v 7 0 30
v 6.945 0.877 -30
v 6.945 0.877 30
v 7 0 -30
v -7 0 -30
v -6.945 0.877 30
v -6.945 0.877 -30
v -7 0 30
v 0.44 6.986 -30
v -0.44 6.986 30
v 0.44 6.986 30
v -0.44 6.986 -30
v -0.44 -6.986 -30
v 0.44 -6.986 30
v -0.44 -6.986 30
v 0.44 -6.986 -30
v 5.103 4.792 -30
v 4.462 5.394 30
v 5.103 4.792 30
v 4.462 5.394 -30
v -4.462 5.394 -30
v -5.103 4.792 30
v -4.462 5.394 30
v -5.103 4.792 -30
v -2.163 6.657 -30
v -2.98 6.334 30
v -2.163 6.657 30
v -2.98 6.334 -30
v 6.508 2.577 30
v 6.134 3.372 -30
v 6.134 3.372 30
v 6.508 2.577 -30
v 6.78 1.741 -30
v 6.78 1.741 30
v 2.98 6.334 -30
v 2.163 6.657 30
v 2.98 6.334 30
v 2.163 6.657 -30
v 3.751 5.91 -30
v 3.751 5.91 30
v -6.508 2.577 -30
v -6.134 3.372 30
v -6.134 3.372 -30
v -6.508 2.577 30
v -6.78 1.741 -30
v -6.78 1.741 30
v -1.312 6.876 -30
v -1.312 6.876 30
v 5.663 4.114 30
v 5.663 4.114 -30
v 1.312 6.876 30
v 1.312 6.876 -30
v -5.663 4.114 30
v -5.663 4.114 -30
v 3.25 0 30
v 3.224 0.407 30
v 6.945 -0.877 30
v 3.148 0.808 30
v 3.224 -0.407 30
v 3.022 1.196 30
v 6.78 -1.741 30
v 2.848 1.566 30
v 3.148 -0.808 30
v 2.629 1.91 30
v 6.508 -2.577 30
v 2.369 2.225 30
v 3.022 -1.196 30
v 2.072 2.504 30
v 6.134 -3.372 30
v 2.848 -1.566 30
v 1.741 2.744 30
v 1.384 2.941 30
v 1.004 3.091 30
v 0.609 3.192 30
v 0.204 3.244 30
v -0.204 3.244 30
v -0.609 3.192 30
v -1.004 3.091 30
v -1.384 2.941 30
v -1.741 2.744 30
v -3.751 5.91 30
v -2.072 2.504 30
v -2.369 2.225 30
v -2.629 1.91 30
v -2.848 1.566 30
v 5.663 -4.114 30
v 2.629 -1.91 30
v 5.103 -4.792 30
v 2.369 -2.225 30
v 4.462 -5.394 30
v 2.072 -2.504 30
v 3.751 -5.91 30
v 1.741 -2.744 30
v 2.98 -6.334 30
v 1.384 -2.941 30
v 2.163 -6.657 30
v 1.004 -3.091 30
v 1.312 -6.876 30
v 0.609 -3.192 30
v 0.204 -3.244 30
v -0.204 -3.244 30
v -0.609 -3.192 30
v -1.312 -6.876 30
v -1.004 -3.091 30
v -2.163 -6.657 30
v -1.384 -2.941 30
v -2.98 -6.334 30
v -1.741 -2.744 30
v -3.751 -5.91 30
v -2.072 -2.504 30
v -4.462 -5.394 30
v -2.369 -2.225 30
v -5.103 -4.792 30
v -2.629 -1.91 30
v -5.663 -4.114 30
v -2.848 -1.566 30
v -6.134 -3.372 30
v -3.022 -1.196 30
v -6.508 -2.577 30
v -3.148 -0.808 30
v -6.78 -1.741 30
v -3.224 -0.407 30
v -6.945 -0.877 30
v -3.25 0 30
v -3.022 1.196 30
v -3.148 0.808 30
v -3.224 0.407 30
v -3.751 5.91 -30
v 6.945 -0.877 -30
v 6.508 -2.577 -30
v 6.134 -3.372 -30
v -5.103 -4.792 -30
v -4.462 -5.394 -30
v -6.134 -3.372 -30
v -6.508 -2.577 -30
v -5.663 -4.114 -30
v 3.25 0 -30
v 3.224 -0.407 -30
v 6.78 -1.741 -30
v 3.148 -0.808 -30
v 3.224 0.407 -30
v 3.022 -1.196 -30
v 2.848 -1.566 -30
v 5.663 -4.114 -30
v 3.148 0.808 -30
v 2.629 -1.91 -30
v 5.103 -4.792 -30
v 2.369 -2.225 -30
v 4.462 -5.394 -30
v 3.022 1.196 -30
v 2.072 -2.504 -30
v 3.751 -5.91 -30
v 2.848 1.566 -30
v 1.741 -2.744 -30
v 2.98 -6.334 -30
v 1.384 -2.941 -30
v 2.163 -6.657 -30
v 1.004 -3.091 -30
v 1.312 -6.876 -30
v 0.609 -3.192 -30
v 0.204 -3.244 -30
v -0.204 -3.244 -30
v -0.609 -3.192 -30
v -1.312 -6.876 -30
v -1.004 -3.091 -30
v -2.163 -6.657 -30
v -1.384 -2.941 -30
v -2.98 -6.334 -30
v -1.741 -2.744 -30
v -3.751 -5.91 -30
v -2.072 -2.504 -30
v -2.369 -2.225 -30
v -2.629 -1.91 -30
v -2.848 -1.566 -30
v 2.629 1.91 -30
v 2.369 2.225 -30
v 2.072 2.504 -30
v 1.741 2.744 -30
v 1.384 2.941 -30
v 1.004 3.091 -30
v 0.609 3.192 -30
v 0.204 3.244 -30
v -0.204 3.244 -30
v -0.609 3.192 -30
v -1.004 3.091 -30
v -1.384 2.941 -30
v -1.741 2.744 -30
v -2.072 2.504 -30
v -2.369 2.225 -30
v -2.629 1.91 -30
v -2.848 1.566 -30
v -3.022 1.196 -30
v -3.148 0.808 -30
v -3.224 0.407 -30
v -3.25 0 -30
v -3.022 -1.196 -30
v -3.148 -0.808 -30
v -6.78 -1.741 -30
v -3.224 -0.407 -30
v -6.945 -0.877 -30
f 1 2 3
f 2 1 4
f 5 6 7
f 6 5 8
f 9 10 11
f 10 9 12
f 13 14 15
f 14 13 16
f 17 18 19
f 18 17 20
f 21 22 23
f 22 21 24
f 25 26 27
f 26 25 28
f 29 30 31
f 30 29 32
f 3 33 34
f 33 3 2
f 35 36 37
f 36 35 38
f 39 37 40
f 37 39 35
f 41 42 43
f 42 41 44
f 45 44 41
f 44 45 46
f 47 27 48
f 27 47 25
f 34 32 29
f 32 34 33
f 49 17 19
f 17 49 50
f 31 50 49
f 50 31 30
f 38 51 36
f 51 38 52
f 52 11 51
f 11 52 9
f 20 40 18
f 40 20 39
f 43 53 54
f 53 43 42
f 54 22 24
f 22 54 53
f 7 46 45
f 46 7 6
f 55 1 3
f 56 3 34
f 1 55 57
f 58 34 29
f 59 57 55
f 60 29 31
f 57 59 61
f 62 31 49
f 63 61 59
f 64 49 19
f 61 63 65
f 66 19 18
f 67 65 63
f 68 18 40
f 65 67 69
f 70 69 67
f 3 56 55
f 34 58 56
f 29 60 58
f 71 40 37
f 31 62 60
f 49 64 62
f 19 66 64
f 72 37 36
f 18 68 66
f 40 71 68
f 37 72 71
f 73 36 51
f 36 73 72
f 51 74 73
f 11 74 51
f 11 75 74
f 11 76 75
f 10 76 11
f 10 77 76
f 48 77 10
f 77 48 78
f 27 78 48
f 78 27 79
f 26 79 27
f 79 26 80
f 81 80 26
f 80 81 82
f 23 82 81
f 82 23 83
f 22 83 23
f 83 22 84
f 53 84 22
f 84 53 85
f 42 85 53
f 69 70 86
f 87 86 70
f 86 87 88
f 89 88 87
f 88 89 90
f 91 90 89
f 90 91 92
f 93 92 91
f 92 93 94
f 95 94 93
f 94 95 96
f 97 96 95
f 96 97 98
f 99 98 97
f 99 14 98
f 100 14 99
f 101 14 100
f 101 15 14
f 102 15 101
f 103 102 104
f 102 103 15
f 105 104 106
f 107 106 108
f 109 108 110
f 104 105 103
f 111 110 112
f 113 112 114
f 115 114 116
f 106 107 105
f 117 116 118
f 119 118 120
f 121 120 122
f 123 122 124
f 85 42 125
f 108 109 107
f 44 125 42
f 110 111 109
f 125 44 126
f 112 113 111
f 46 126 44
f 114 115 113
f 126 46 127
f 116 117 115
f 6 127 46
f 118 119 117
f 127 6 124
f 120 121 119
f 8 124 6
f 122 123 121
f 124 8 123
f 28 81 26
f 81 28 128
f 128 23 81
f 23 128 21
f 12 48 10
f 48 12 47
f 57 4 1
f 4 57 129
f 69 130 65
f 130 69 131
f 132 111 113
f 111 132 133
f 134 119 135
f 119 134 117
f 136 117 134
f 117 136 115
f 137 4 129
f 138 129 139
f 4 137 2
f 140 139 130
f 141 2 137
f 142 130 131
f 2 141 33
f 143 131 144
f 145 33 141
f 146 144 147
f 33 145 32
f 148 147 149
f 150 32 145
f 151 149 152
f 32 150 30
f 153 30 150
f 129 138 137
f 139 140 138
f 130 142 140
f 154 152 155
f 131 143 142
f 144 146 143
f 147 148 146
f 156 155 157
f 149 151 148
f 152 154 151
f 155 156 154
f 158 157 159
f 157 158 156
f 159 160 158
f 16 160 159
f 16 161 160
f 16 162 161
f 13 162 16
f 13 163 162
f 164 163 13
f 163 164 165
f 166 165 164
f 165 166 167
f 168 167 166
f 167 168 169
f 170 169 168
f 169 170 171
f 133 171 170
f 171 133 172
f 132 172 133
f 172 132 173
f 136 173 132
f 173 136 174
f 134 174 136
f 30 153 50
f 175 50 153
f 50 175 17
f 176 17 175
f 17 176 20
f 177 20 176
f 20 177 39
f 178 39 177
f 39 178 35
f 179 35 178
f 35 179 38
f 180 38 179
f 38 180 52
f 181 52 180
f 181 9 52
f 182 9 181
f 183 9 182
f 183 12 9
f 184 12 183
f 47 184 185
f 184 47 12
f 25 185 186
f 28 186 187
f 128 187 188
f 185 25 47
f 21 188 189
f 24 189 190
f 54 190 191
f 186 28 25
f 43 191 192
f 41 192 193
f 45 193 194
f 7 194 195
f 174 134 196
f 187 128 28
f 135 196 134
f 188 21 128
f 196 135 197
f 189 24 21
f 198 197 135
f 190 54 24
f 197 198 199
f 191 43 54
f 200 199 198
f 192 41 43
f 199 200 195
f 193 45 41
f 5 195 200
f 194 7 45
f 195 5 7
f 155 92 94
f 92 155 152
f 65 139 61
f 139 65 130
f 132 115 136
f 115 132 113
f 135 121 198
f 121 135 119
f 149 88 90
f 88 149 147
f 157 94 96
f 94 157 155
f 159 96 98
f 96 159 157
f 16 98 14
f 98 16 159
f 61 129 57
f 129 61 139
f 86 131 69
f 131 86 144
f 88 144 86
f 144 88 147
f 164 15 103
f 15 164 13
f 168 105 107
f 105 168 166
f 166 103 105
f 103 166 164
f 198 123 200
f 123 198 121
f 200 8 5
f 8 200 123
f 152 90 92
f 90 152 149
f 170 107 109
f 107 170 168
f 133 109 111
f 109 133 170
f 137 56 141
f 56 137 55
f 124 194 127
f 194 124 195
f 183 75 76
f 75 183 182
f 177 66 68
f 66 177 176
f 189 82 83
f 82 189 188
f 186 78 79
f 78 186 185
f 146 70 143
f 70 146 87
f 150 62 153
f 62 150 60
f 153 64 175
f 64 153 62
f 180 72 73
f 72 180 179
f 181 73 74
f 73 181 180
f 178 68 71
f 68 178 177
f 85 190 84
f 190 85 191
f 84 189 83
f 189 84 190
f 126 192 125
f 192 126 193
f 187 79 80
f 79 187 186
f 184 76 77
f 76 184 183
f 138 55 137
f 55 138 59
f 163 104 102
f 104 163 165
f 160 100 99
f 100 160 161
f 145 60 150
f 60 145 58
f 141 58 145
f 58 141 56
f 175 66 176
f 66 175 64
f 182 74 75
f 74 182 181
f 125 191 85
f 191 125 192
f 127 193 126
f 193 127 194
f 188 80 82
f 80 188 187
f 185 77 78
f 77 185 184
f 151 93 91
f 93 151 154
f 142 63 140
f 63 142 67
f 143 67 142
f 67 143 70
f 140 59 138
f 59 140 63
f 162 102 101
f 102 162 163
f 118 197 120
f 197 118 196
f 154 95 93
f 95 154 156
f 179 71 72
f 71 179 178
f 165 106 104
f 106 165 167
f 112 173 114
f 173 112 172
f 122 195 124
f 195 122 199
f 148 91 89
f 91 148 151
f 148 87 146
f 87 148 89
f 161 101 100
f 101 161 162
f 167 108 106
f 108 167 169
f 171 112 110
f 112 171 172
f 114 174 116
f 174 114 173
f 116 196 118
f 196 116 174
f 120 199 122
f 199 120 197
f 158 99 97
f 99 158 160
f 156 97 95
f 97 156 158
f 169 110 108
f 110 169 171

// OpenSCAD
$fn = 50;


difference() {
	union() {
		translate(v = [0, 0, -30.0000000000]) {
			cylinder(h = 60, r = 7.0000000000);
		}
	}
	union() {
		translate(v = [0, 0, -100.0000000000]) {
			cylinder(h = 200, r = 3.2500000000);
		}
	}
}
